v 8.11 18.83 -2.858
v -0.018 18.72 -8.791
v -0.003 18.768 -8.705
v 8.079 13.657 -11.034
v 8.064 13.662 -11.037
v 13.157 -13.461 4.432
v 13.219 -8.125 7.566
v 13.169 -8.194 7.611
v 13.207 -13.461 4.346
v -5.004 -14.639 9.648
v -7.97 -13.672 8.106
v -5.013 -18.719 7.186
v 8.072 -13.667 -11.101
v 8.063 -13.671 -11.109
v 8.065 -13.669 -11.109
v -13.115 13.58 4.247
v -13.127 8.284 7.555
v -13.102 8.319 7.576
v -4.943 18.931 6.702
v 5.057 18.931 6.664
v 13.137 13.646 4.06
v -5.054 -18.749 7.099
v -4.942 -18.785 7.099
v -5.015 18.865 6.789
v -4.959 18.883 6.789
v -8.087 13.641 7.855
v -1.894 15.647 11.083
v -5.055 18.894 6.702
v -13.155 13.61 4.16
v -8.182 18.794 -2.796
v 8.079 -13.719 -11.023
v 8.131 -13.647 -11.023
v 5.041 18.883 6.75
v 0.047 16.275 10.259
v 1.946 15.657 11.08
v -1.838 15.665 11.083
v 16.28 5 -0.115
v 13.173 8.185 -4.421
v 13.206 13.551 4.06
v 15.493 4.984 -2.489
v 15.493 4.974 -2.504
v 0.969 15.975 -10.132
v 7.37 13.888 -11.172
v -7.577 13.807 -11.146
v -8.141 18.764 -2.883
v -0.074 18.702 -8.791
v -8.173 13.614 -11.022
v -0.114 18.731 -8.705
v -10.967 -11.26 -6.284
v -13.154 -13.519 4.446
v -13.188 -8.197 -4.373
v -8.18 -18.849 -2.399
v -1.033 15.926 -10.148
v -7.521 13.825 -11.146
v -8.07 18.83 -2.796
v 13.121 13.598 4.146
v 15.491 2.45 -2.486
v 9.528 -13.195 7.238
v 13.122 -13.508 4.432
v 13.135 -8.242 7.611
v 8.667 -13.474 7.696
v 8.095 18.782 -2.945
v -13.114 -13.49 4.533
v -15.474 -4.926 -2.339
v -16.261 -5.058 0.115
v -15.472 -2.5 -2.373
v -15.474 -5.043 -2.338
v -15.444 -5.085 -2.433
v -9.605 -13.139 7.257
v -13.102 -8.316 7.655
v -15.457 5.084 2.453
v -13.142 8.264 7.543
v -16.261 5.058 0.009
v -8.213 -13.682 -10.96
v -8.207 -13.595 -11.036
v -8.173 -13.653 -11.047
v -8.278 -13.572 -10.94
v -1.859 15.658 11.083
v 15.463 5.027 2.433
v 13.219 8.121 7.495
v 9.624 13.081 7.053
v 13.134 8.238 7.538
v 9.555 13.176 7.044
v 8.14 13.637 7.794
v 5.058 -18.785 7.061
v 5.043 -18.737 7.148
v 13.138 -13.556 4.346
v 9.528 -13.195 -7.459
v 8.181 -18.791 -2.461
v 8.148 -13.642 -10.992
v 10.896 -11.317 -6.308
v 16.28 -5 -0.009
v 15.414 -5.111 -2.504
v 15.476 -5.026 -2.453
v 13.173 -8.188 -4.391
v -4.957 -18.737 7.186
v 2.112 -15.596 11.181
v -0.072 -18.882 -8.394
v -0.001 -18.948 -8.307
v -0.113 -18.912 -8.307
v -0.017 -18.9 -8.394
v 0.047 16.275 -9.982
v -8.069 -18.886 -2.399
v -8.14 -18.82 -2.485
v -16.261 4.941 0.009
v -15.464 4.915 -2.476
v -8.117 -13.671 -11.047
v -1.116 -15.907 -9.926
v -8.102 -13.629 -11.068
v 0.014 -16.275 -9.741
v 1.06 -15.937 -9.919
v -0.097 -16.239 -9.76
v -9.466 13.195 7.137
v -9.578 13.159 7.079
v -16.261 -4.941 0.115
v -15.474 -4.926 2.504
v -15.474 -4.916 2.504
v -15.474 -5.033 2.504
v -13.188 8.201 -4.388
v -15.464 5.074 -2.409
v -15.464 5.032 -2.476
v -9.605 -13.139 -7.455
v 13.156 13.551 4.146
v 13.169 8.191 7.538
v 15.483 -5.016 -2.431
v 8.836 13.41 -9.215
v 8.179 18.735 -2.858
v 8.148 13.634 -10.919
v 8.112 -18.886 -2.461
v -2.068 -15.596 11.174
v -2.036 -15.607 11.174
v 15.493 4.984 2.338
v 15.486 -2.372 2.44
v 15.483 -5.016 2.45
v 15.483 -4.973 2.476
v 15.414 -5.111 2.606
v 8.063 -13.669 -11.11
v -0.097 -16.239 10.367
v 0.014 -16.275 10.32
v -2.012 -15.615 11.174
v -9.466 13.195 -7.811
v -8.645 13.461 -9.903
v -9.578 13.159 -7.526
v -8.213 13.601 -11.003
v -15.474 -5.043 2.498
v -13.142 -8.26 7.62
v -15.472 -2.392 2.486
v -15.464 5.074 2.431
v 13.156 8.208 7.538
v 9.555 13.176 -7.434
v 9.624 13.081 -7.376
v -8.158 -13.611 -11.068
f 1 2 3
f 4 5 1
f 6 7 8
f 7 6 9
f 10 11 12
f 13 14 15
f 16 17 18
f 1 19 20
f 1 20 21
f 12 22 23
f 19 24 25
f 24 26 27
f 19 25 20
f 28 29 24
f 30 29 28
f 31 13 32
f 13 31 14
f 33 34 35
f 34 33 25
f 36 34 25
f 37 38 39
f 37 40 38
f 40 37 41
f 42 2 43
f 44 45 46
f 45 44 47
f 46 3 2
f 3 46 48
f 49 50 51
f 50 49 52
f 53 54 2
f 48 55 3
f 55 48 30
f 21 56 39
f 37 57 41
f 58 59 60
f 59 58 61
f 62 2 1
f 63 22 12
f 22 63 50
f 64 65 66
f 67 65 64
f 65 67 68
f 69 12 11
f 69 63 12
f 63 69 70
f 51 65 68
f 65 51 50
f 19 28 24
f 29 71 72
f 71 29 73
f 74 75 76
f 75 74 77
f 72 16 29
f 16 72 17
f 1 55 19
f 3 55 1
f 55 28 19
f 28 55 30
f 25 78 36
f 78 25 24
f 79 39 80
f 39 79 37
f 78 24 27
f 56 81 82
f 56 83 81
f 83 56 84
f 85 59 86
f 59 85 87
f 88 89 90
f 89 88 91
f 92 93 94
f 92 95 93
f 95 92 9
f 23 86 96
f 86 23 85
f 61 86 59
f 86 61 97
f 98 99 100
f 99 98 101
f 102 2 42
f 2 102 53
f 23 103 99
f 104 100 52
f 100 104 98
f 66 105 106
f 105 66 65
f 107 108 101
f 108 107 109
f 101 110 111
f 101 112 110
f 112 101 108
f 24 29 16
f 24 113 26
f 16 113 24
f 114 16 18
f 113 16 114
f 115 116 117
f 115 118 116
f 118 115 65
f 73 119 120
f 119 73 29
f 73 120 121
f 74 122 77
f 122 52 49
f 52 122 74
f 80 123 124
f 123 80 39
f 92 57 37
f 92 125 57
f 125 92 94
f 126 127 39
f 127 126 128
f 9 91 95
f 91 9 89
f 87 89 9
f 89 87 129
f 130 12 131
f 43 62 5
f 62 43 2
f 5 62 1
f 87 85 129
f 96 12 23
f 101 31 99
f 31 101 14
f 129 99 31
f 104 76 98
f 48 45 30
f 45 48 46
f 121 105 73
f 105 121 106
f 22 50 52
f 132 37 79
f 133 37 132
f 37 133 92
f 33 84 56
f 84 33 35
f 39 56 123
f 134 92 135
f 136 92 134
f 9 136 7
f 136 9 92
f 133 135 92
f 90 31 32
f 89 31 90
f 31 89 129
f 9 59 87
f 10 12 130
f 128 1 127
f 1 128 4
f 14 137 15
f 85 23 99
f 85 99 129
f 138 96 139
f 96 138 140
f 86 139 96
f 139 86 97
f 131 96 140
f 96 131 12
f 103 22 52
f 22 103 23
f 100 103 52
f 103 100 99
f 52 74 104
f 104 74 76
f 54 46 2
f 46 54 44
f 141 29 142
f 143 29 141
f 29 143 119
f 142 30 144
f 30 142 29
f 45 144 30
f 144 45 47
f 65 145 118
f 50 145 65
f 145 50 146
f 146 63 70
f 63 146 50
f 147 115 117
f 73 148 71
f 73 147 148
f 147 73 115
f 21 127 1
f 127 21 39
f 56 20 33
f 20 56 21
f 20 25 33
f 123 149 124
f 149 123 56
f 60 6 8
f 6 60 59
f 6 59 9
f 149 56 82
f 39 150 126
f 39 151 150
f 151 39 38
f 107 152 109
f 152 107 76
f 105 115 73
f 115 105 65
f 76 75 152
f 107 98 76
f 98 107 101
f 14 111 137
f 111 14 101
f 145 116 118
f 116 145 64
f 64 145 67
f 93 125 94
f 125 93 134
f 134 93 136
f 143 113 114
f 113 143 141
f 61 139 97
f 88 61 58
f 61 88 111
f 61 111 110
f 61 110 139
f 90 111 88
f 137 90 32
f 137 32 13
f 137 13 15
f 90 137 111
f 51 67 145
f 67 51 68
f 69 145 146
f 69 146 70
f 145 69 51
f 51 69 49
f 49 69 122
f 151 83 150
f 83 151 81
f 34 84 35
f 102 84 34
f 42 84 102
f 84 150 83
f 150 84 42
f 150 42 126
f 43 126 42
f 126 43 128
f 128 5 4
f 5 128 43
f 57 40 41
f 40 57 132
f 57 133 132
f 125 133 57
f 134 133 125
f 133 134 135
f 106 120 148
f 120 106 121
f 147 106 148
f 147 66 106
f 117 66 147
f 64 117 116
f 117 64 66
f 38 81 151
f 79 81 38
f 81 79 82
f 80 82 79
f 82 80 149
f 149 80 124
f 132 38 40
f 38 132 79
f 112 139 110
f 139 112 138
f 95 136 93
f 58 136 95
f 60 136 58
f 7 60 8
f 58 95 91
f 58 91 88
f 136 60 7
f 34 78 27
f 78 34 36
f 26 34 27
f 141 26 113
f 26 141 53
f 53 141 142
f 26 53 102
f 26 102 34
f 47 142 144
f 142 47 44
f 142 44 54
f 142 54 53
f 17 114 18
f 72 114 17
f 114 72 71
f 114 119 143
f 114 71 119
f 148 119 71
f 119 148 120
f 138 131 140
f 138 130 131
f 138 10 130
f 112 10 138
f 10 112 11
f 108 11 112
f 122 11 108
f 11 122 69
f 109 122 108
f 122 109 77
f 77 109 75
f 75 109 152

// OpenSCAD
// Auto-generated OpenSCAD file

    inner_points = 10*[[-0.0016418331040251556, -1.6180331557585415, -0.5000000000000097], [-0.0016418331038291958, -1.6180331557585472, 0.49999999999999034], [0.0016418331038291958, 1.6180331557585472, -0.49999999999999034], [0.0016418331040251556, 1.6180331557585415, 0.5000000000000097], [-0.952384297558225, -1.3080512751855717, -0.4999999999998215], [-0.9523842975580289, -1.3080512751855777, 0.5000000000001786], [0.94972775579202, -1.3099813657559998, -0.5000000000001942], [0.949727755792216, -1.3099813657560058, 0.4999999999998058], [-0.949727755792216, 1.3099813657560058, -0.4999999999998058], [-0.94972775579202, 1.3099813657559998, 0.5000000000001942], [0.9523842975580289, 1.3080512751855777, -0.5000000000001786], [0.952384297558225, 1.3080512751855717, 0.4999999999998215], [-1.5393483306969136, -0.4984382665193544, -0.49999999999970146], [-1.5393483306967177, -0.4984382665193606, 0.5000000000002985], [1.5383336220346362, -0.5015612186636724, -0.5000000000003045], [1.538333622034832, -0.5015612186636786, 0.49999999999969547], [-1.538333622034832, 0.5015612186636786, -0.49999999999969547], [-1.5383336220346362, 0.5015612186636724, 0.5000000000003045], [1.5393483306967177, 0.4984382665193606, -0.5000000000002985], [1.5393483306969136, 0.4984382665193544, 0.49999999999970146], [-0.2636863372842498, -0.808749845922564, -1.876381920471127], [-0.26368633728351437, -0.8087498459225871, 1.8763819204712202], [-0.2620445041803226, 0.8092833098359803, -1.8763819204711172], [-0.2620445041795872, 0.8092833098359572, 1.87638192047123], [0.6876832516117953, -0.5006980559200224, -1.8763819204713112], [0.6876832516125307, -0.5006980559200455, 1.876381920471036], [0.6886979602738771, 0.49930142926301074, -1.8763819204713055], [0.6886979602746125, 0.49930142926298754, 1.8763819204710417], [-0.8506503704229385, 0.0008631627436532224, -1.8763819204710068], [-0.850650370422203, 0.0008631627436300636, 1.8763819204713403], [0.42399691432801623, -1.3094479018426013, -1.350650808352131], [0.4239969143285456, -1.309447901842618, 1.3506508083519488], [0.42665345609402516, 1.3085847390989762, -1.3506508083521154], [0.4266534560945545, 1.3085847390989596, 1.3506508083519644], [-1.1143367077067177, -0.8078866831789255, -1.3506508083518265], [-1.1143367077061885, -0.8078866831789423, 1.3506508083522533], [-1.1126948746027905, 0.8101464725796188, -1.3506508083518167], [-1.1126948746022614, 0.810146472579602, 1.350650808352263], [1.3763812118861432, -0.0013966266570264558, -1.3506508083523097], [1.3763812118866725, -0.0013966266570431258, 1.35065080835177]];

    outer_points = 10*[[1.6180016504227956, 0.49997195375907766, -0.011519263576068448], [1.618042389272906, -0.49997195375907766, -0.0009277501021131744], [-1.618042389272906, 0.49997195375907766, 0.0009277501021131744], [-1.6180016504227956, -0.49997195375907766, 0.011519263576068448], [1.3053290615582724, 0.4898987513388698, -0.961326813959702], [1.3053698004083825, -0.5100451561792856, -0.9507353004857466], [1.312644822251197, 0.5100451561792856, 0.9406654548908802], [1.312685561101307, -0.4898987513388698, 0.9512569683648355], [-1.312685561101307, 0.4898987513388698, -0.9512569683648355], [-1.312644822251197, -0.5100451561792856, -0.9406654548908802], [-1.3053698004083825, 0.5100451561792856, 0.9507353004857466], [-1.3053290615582724, -0.4898987513388698, 0.961326813959702], [0.494057357253453, 0.4836731698676236, -1.5459629947847504], [0.49409809610356314, -0.5162707376505317, -1.5353714813107953], [0.5058945067081656, 0.5162707376505317, 1.5315251425550196], [0.5059352455582757, -0.4836731698676236, 1.5421166560289747], [-0.5059352455582757, 0.4836731698676236, -1.5421166560289747], [-0.5058945067081656, -0.5162707376505317, -1.5315251425550196], [-0.49409809610356314, 0.5162707376505317, 1.5353714813107953], [-0.494057357253453, -0.4836731698676236, 1.5459629947847504], [0.8079235550197118, 1.8734925048785318, -0.28583434473369956], [0.8080764383033266, -1.8790608342261998, -0.24608689594778654], [-0.810098464828139, 1.8734925048785318, -0.2796108378946088], [-0.8099455815445241, -1.8790608342261998, -0.23986338910869576], [0.5025667268481131, 1.8835657072987397, 0.6663503737332491], [0.5027196101317281, -1.868987631805992, 0.7060978225191622], [-0.49742587596361565, 1.8835657072987397, 0.6701967124890246], [-0.49727299268000075, -1.868987631805992, 0.7099441612749376], [-0.0033481492851075404, 1.8672669234072858, -0.8704705255587479], [-0.003195266001492647, -1.8852864156974458, -0.8307230767728349], [1.3105881411906073, 1.355079920068634, 0.4059580415501933], [1.3106981891122724, -1.3460701739235539, 0.4345689140207317], [-1.3074264814689722, 1.355079920068634, 0.41602788714505967], [-1.307316433547307, -1.3460701739235539, 0.44463875961559807], [0.8046732650573866, 1.33878113617718, -1.130862857741804], [0.8047833129790517, -1.362368957815008, -1.1022519852712656], [-0.8133487547904642, 1.33878113617718, -1.124639350902713], [-0.8132387068687991, -1.362368957815008, -1.0960284784321745], [0.00523871020727978, 1.365153122488842, 1.3619890987729175], [0.005348758128944959, -1.335996971503346, 1.390599971243456]];

    // Convex hull for inner set (I)
    module inner_hull() {
        hull() {
            for (p = inner_points) {
                translate(p) sphere(r=0.1);
            }
        }
    }

    // Convex hull for outer set (O) minus inner hull (O \ I)
    module outer_minus_inner() {
        difference() {
            hull() {
                for (p = outer_points) {
                    translate(p) sphere(r=0.1);
                }
            }
            inner_hull(); // Subtract inner hull
        }
    }

    // Convex hull for outer set (O) minus all translated inner hulls
    module outer_minus_AllTranslationInner() {
        difference() {
            hull() {
                for (p = outer_points) {
                    translate(p) sphere(r=0.1);
                }
            }
            hull() {
                translate([0,0,50]) inner_hull();
                translate([0,0,-50]) inner_hull();
            }; // Subtract translated inner hulls
        }
    }

    // Difference between outer_minus_inner and outer_minus_AllTranslationInner
    module outer_minus_inner_diff() {
        difference() {
            // Outer minus inner
            difference() {
                hull() {
                    for (p = outer_points) {
                        translate(p) sphere(r=0.1);
                    }
                }
                inner_hull();
            }

            // Subtract Outer minus AllTranslationInner
            difference() {
                hull() {
                    for (p = outer_points) {
                        translate(p) sphere(r=0.1);
                    }
                }
                hull() {
                    translate([0,0,50]) inner_hull();
                    translate([0,0,-50]) inner_hull();
                };
            }
        }
    }

    // Rendering all with colors applied
    color([0, 1, 0, 1]) outer_minus_AllTranslationInner(); // Opaque green
    
